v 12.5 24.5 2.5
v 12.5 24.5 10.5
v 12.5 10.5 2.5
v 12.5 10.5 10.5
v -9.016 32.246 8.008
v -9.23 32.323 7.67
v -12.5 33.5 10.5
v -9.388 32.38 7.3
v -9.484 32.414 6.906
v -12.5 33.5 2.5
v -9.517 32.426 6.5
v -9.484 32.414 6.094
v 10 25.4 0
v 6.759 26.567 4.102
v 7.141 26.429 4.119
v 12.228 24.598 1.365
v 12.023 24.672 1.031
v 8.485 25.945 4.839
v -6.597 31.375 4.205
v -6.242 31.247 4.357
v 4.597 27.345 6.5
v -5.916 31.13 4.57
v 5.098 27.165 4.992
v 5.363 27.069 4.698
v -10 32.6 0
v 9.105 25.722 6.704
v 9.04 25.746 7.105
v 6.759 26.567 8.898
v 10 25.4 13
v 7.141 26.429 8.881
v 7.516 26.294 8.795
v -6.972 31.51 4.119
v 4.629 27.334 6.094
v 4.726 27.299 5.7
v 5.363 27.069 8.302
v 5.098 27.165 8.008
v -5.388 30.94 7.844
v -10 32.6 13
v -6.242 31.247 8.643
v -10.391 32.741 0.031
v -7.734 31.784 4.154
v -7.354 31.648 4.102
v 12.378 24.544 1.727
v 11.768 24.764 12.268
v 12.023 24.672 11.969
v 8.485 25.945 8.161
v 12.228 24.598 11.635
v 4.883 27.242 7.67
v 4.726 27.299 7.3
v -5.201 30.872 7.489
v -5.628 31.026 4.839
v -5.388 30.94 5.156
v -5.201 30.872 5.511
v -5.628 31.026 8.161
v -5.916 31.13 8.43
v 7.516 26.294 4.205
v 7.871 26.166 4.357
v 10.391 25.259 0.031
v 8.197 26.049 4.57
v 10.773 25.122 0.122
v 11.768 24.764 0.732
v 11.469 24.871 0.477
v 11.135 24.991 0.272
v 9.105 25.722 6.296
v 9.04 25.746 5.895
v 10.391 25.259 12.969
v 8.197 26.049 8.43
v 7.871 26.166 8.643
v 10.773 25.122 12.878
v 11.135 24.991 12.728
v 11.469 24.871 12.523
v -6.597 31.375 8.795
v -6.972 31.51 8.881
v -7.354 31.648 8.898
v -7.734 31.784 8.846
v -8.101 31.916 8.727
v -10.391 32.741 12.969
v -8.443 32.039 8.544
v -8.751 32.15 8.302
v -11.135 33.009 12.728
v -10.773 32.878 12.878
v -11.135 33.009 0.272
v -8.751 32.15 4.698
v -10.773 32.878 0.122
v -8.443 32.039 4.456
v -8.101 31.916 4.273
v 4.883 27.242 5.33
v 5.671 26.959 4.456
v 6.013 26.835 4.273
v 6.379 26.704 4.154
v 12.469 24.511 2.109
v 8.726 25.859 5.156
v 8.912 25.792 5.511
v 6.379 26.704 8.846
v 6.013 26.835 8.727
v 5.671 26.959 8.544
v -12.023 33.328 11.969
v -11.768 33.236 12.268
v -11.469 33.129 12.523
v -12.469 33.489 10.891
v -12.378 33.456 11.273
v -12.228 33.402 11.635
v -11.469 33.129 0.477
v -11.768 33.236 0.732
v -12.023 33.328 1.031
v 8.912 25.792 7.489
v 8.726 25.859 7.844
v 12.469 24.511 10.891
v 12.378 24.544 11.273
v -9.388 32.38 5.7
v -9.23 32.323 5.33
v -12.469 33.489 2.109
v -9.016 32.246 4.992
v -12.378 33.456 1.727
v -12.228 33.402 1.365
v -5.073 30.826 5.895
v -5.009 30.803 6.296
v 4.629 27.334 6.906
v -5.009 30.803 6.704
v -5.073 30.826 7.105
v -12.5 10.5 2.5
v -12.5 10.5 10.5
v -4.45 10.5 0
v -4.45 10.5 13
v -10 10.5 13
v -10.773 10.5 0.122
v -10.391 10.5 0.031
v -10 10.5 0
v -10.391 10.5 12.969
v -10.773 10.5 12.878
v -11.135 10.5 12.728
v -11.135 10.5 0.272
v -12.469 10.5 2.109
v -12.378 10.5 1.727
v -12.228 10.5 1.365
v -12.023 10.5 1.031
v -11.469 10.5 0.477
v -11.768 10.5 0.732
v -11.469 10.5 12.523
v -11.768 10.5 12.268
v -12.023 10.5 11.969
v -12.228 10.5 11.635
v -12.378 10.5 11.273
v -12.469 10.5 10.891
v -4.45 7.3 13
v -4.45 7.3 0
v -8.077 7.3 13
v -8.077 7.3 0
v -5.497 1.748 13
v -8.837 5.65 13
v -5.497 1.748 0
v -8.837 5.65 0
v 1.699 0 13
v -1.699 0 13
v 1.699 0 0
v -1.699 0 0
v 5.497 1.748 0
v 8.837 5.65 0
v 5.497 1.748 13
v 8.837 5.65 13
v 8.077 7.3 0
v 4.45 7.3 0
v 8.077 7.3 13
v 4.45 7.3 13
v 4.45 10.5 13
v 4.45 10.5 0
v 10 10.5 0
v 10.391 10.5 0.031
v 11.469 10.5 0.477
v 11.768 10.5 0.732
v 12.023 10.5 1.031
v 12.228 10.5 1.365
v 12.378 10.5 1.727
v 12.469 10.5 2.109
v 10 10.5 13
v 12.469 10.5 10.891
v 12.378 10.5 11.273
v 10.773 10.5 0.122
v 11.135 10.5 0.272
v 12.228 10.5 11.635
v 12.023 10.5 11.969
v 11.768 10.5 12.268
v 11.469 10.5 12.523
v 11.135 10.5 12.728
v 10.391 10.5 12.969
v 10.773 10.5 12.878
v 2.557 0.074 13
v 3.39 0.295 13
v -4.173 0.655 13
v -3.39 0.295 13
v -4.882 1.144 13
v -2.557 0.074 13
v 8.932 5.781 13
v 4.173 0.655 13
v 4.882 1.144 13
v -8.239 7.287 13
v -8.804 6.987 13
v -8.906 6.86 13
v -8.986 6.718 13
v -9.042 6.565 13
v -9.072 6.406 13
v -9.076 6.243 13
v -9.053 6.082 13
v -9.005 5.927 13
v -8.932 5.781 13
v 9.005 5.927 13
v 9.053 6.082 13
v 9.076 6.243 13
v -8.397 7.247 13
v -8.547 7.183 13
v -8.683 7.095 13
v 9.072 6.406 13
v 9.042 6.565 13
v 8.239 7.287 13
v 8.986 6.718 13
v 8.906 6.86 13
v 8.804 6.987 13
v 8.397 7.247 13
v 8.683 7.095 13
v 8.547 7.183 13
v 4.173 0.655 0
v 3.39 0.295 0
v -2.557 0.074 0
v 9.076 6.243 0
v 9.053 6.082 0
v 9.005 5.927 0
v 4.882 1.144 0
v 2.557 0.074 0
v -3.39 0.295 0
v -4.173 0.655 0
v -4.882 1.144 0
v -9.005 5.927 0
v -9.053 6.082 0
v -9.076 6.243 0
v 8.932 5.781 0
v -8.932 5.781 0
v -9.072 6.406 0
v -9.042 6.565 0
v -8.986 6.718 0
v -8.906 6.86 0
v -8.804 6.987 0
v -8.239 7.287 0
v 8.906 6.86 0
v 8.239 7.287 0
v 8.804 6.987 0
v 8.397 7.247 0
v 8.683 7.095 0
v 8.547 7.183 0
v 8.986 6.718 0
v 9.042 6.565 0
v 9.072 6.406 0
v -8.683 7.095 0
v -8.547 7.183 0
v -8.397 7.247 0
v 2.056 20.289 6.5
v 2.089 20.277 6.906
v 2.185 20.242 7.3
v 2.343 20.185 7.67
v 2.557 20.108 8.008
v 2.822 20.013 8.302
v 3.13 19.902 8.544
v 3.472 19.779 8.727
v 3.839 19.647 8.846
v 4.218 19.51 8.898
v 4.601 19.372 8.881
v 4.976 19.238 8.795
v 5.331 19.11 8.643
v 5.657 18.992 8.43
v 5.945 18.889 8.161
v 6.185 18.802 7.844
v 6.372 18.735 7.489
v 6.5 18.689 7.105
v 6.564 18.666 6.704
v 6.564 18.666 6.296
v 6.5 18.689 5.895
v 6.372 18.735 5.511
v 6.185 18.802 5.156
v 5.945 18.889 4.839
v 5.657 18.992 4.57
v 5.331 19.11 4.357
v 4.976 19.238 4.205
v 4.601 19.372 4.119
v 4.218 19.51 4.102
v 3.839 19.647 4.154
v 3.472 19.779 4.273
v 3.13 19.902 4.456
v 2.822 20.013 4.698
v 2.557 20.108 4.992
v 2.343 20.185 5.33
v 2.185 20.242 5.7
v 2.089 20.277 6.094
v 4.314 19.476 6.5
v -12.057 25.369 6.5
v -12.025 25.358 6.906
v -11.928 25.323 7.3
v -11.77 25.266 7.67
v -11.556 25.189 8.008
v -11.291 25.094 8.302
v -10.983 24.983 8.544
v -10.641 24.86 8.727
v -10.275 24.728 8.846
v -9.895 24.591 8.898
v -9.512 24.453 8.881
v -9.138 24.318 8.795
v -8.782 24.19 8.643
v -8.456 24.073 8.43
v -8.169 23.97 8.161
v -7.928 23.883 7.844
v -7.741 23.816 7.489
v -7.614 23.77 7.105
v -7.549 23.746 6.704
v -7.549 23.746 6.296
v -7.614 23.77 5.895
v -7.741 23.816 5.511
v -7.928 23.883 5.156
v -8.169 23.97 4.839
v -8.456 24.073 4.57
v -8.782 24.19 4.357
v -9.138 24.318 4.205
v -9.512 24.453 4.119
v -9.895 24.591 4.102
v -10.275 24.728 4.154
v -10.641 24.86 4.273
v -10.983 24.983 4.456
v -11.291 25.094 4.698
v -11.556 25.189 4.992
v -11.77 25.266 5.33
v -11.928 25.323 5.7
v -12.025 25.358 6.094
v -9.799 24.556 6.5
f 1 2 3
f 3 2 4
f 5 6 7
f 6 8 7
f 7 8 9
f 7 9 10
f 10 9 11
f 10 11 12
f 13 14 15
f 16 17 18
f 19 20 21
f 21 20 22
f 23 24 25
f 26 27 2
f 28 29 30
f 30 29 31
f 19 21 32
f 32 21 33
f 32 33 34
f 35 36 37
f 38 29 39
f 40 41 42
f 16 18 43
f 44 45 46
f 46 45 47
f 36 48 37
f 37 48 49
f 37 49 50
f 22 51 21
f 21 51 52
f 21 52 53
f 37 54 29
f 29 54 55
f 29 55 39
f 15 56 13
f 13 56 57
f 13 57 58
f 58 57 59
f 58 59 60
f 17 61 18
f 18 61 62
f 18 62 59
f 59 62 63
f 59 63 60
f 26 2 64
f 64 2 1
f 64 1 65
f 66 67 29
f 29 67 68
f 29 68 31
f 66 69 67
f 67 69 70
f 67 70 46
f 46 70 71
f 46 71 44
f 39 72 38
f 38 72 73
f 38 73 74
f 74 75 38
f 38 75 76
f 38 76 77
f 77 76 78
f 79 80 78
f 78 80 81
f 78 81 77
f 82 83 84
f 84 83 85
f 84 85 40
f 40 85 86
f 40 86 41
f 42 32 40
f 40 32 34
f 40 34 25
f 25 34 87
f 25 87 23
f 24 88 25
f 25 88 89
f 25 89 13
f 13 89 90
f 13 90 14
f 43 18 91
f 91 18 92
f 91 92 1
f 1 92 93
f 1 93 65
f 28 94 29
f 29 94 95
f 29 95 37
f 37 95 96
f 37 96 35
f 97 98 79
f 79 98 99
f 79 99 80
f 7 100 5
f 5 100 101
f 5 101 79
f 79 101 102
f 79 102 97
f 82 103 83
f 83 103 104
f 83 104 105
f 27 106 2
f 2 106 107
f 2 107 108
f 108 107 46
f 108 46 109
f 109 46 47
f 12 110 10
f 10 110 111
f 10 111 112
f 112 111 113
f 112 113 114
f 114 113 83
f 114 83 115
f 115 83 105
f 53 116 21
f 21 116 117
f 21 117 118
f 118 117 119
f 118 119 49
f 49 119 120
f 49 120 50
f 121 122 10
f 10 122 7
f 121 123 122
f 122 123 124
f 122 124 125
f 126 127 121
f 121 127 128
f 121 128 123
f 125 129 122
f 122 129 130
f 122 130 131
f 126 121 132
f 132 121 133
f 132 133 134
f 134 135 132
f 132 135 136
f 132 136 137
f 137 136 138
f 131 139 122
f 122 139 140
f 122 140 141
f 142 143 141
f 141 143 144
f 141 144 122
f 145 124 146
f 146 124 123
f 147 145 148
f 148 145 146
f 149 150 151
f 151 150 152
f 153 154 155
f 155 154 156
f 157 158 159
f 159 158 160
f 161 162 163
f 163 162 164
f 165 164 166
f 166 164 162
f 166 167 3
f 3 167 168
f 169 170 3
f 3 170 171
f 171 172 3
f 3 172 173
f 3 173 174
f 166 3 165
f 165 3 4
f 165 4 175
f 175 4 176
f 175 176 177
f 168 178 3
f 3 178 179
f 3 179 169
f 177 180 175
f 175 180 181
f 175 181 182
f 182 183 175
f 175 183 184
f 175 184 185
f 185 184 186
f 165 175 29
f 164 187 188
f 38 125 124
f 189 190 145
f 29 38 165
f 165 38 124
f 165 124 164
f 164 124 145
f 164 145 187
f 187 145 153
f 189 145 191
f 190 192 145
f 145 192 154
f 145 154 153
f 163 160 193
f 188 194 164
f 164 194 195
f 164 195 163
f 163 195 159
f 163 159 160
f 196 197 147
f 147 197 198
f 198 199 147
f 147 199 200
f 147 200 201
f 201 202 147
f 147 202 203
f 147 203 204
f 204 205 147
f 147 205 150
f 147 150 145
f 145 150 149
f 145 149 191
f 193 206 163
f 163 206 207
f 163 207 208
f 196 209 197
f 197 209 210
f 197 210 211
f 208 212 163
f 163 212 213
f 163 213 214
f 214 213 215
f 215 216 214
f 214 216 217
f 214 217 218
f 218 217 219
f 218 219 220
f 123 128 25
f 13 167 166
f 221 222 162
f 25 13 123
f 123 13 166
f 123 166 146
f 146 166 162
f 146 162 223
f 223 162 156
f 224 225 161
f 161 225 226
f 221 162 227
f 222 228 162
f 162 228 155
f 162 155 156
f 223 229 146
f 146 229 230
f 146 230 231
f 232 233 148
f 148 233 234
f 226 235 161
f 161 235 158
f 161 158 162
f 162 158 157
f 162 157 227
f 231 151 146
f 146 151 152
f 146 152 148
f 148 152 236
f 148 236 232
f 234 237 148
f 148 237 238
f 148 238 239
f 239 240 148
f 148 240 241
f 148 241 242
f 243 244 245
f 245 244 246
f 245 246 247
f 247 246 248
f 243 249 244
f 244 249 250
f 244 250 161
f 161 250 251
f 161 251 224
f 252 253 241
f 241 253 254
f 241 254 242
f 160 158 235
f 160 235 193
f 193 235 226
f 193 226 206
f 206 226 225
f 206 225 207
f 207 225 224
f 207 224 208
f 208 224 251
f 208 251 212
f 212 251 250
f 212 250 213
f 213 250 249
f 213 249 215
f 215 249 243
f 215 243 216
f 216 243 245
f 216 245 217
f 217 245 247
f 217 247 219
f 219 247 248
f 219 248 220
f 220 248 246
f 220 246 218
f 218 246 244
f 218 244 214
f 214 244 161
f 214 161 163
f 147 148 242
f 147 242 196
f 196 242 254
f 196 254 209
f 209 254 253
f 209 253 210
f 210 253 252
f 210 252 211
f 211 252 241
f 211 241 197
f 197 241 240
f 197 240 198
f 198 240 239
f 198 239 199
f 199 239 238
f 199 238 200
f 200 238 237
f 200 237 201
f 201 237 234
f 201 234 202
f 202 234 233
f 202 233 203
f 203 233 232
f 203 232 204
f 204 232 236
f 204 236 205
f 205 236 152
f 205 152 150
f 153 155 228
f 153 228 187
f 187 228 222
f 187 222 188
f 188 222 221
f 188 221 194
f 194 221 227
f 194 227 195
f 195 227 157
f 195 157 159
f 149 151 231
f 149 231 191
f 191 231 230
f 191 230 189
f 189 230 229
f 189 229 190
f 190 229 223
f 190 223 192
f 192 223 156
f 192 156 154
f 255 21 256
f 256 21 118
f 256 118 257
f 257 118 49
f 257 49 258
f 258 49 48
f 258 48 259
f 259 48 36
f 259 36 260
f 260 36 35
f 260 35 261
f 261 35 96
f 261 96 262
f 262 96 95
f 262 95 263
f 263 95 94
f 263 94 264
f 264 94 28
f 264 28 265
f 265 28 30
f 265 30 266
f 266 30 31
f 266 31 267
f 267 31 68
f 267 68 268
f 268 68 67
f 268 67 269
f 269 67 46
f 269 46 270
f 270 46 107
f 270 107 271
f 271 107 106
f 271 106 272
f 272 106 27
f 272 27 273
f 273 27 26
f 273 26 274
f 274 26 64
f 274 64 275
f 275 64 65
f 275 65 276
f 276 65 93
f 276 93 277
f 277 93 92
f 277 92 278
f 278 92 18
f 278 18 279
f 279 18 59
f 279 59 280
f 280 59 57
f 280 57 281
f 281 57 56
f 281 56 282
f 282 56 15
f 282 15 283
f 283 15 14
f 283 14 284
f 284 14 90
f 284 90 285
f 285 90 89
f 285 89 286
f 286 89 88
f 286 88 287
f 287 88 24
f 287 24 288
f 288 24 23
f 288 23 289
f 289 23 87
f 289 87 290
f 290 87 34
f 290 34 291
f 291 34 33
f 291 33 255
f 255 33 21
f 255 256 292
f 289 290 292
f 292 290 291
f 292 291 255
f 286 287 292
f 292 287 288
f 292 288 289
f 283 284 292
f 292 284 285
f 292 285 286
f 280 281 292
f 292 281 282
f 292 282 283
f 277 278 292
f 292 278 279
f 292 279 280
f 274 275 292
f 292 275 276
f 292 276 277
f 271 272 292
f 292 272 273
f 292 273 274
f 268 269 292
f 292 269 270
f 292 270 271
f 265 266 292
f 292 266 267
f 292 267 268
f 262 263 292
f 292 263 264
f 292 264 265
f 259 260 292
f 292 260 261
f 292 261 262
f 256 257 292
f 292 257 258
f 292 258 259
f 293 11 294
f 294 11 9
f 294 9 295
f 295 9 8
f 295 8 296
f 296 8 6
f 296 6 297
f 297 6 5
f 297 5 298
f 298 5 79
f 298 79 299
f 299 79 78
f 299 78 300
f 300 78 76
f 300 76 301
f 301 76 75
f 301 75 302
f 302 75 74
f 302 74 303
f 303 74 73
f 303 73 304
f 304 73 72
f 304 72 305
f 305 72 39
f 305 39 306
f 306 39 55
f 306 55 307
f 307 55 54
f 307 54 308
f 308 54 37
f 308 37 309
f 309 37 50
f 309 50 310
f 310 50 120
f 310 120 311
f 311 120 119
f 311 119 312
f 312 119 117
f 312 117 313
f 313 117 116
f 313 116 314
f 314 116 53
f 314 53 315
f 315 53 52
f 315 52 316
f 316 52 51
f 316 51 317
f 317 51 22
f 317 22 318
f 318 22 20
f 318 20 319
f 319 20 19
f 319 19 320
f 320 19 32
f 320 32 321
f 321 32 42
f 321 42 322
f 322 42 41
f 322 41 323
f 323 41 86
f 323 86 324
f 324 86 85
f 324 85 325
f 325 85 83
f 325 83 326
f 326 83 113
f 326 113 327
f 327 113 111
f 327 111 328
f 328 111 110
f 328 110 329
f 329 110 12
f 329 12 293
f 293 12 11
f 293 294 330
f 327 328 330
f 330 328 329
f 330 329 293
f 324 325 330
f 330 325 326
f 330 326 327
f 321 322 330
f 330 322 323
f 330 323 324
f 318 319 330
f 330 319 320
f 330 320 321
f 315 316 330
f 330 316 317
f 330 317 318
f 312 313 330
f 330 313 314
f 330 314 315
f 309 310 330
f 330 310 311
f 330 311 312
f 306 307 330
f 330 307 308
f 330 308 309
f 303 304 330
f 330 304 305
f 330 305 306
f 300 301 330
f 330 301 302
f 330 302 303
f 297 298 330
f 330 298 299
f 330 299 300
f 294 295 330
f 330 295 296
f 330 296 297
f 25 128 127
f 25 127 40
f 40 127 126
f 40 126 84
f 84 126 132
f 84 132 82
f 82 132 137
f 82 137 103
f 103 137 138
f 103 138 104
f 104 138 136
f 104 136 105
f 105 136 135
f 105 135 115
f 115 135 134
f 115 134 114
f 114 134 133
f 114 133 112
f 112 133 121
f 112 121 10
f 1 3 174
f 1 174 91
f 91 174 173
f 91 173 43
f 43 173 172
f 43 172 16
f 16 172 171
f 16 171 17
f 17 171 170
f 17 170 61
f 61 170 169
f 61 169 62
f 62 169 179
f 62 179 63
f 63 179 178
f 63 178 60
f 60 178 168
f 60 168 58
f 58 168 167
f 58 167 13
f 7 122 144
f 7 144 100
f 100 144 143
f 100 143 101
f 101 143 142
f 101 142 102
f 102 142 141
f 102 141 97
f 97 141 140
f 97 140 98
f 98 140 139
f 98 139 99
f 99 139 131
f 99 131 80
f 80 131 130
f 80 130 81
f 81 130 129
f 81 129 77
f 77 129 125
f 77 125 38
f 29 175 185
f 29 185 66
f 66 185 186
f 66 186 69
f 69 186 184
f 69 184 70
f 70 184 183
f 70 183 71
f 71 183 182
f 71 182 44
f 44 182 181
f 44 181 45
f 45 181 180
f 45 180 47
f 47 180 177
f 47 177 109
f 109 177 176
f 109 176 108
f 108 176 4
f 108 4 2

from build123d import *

# Parameters (mm, degrees)
BOSS_EXTRUDE3_DEPTH = 13
FILLET1_R           = 1
FILLET2_R           = 5
SKETCH2_R           = 2.4
CUT_EXTRUDE1_DEPTH  = 7.5
FILLET3_R           = 2.5


with BuildPart() as part:
    # Sketch1 → Boss-Extrude3 (new body)
    with BuildSketch(Plane.XY):
        Polygon((-12.5, 10.5), (-4.45, 10.5), (4.45, 10.5), (12.5, 10.5), (12.5, 24.5), (-12.5, 33.5), align=None)
        Polygon((-4.45, 7.3), (-10.25, 7.3), (-4, 0), (4, 0), (10.25, 7.3), (4.45, 7.3), (4.45, 10.5), (-4.45, 10.5), align=None)
    extrude(amount=BOSS_EXTRUDE3_DEPTH)

    # Fillet1
    fillet1_edges = [part.edges().sort_by_distance(p)[0] for p in [
        (10.25, 7.3, 6.5),
        (-10.25, 7.3, 6.5),
    ]]
    fillet(fillet1_edges, radius=FILLET1_R)

    # Fillet2
    fillet2_edges = [part.edges().sort_by_distance(p)[0] for p in [
        (4, 0, 6.5),
        (-4, 0, 6.5),
    ]]
    fillet(fillet2_edges, radius=FILLET2_R)

    # Sketch2 → Cut-Extrude1 (cut)
    with BuildSketch(Plane(origin=(9.242209632, 25.672804533, 0), x_dir=(0.9408874118687268, -0.33871946827274163, 0), z_dir=(0.33871946827274163, 0.9408874118687268, 0))):
        with Locations(Location((-17.537534324, -6.5, 0), (0, 0, 180))):
            Circle(SKETCH2_R)
        with Locations(Location((-2.537534324, -6.5, 0), (0, 0, 180))):
            Circle(SKETCH2_R)
    extrude(amount=-CUT_EXTRUDE1_DEPTH, mode=Mode.SUBTRACT)

    # Fillet3
    fillet3_edges = [part.edges().sort_by_distance(p)[0] for p in [
        (-12.5, 22, 13),
        (-12.5, 22, 0),
        (12.5, 17.5, 0),
        (12.5, 17.5, 13),
    ]]
    fillet(fillet3_edges, radius=FILLET3_R)


solid = part.part
